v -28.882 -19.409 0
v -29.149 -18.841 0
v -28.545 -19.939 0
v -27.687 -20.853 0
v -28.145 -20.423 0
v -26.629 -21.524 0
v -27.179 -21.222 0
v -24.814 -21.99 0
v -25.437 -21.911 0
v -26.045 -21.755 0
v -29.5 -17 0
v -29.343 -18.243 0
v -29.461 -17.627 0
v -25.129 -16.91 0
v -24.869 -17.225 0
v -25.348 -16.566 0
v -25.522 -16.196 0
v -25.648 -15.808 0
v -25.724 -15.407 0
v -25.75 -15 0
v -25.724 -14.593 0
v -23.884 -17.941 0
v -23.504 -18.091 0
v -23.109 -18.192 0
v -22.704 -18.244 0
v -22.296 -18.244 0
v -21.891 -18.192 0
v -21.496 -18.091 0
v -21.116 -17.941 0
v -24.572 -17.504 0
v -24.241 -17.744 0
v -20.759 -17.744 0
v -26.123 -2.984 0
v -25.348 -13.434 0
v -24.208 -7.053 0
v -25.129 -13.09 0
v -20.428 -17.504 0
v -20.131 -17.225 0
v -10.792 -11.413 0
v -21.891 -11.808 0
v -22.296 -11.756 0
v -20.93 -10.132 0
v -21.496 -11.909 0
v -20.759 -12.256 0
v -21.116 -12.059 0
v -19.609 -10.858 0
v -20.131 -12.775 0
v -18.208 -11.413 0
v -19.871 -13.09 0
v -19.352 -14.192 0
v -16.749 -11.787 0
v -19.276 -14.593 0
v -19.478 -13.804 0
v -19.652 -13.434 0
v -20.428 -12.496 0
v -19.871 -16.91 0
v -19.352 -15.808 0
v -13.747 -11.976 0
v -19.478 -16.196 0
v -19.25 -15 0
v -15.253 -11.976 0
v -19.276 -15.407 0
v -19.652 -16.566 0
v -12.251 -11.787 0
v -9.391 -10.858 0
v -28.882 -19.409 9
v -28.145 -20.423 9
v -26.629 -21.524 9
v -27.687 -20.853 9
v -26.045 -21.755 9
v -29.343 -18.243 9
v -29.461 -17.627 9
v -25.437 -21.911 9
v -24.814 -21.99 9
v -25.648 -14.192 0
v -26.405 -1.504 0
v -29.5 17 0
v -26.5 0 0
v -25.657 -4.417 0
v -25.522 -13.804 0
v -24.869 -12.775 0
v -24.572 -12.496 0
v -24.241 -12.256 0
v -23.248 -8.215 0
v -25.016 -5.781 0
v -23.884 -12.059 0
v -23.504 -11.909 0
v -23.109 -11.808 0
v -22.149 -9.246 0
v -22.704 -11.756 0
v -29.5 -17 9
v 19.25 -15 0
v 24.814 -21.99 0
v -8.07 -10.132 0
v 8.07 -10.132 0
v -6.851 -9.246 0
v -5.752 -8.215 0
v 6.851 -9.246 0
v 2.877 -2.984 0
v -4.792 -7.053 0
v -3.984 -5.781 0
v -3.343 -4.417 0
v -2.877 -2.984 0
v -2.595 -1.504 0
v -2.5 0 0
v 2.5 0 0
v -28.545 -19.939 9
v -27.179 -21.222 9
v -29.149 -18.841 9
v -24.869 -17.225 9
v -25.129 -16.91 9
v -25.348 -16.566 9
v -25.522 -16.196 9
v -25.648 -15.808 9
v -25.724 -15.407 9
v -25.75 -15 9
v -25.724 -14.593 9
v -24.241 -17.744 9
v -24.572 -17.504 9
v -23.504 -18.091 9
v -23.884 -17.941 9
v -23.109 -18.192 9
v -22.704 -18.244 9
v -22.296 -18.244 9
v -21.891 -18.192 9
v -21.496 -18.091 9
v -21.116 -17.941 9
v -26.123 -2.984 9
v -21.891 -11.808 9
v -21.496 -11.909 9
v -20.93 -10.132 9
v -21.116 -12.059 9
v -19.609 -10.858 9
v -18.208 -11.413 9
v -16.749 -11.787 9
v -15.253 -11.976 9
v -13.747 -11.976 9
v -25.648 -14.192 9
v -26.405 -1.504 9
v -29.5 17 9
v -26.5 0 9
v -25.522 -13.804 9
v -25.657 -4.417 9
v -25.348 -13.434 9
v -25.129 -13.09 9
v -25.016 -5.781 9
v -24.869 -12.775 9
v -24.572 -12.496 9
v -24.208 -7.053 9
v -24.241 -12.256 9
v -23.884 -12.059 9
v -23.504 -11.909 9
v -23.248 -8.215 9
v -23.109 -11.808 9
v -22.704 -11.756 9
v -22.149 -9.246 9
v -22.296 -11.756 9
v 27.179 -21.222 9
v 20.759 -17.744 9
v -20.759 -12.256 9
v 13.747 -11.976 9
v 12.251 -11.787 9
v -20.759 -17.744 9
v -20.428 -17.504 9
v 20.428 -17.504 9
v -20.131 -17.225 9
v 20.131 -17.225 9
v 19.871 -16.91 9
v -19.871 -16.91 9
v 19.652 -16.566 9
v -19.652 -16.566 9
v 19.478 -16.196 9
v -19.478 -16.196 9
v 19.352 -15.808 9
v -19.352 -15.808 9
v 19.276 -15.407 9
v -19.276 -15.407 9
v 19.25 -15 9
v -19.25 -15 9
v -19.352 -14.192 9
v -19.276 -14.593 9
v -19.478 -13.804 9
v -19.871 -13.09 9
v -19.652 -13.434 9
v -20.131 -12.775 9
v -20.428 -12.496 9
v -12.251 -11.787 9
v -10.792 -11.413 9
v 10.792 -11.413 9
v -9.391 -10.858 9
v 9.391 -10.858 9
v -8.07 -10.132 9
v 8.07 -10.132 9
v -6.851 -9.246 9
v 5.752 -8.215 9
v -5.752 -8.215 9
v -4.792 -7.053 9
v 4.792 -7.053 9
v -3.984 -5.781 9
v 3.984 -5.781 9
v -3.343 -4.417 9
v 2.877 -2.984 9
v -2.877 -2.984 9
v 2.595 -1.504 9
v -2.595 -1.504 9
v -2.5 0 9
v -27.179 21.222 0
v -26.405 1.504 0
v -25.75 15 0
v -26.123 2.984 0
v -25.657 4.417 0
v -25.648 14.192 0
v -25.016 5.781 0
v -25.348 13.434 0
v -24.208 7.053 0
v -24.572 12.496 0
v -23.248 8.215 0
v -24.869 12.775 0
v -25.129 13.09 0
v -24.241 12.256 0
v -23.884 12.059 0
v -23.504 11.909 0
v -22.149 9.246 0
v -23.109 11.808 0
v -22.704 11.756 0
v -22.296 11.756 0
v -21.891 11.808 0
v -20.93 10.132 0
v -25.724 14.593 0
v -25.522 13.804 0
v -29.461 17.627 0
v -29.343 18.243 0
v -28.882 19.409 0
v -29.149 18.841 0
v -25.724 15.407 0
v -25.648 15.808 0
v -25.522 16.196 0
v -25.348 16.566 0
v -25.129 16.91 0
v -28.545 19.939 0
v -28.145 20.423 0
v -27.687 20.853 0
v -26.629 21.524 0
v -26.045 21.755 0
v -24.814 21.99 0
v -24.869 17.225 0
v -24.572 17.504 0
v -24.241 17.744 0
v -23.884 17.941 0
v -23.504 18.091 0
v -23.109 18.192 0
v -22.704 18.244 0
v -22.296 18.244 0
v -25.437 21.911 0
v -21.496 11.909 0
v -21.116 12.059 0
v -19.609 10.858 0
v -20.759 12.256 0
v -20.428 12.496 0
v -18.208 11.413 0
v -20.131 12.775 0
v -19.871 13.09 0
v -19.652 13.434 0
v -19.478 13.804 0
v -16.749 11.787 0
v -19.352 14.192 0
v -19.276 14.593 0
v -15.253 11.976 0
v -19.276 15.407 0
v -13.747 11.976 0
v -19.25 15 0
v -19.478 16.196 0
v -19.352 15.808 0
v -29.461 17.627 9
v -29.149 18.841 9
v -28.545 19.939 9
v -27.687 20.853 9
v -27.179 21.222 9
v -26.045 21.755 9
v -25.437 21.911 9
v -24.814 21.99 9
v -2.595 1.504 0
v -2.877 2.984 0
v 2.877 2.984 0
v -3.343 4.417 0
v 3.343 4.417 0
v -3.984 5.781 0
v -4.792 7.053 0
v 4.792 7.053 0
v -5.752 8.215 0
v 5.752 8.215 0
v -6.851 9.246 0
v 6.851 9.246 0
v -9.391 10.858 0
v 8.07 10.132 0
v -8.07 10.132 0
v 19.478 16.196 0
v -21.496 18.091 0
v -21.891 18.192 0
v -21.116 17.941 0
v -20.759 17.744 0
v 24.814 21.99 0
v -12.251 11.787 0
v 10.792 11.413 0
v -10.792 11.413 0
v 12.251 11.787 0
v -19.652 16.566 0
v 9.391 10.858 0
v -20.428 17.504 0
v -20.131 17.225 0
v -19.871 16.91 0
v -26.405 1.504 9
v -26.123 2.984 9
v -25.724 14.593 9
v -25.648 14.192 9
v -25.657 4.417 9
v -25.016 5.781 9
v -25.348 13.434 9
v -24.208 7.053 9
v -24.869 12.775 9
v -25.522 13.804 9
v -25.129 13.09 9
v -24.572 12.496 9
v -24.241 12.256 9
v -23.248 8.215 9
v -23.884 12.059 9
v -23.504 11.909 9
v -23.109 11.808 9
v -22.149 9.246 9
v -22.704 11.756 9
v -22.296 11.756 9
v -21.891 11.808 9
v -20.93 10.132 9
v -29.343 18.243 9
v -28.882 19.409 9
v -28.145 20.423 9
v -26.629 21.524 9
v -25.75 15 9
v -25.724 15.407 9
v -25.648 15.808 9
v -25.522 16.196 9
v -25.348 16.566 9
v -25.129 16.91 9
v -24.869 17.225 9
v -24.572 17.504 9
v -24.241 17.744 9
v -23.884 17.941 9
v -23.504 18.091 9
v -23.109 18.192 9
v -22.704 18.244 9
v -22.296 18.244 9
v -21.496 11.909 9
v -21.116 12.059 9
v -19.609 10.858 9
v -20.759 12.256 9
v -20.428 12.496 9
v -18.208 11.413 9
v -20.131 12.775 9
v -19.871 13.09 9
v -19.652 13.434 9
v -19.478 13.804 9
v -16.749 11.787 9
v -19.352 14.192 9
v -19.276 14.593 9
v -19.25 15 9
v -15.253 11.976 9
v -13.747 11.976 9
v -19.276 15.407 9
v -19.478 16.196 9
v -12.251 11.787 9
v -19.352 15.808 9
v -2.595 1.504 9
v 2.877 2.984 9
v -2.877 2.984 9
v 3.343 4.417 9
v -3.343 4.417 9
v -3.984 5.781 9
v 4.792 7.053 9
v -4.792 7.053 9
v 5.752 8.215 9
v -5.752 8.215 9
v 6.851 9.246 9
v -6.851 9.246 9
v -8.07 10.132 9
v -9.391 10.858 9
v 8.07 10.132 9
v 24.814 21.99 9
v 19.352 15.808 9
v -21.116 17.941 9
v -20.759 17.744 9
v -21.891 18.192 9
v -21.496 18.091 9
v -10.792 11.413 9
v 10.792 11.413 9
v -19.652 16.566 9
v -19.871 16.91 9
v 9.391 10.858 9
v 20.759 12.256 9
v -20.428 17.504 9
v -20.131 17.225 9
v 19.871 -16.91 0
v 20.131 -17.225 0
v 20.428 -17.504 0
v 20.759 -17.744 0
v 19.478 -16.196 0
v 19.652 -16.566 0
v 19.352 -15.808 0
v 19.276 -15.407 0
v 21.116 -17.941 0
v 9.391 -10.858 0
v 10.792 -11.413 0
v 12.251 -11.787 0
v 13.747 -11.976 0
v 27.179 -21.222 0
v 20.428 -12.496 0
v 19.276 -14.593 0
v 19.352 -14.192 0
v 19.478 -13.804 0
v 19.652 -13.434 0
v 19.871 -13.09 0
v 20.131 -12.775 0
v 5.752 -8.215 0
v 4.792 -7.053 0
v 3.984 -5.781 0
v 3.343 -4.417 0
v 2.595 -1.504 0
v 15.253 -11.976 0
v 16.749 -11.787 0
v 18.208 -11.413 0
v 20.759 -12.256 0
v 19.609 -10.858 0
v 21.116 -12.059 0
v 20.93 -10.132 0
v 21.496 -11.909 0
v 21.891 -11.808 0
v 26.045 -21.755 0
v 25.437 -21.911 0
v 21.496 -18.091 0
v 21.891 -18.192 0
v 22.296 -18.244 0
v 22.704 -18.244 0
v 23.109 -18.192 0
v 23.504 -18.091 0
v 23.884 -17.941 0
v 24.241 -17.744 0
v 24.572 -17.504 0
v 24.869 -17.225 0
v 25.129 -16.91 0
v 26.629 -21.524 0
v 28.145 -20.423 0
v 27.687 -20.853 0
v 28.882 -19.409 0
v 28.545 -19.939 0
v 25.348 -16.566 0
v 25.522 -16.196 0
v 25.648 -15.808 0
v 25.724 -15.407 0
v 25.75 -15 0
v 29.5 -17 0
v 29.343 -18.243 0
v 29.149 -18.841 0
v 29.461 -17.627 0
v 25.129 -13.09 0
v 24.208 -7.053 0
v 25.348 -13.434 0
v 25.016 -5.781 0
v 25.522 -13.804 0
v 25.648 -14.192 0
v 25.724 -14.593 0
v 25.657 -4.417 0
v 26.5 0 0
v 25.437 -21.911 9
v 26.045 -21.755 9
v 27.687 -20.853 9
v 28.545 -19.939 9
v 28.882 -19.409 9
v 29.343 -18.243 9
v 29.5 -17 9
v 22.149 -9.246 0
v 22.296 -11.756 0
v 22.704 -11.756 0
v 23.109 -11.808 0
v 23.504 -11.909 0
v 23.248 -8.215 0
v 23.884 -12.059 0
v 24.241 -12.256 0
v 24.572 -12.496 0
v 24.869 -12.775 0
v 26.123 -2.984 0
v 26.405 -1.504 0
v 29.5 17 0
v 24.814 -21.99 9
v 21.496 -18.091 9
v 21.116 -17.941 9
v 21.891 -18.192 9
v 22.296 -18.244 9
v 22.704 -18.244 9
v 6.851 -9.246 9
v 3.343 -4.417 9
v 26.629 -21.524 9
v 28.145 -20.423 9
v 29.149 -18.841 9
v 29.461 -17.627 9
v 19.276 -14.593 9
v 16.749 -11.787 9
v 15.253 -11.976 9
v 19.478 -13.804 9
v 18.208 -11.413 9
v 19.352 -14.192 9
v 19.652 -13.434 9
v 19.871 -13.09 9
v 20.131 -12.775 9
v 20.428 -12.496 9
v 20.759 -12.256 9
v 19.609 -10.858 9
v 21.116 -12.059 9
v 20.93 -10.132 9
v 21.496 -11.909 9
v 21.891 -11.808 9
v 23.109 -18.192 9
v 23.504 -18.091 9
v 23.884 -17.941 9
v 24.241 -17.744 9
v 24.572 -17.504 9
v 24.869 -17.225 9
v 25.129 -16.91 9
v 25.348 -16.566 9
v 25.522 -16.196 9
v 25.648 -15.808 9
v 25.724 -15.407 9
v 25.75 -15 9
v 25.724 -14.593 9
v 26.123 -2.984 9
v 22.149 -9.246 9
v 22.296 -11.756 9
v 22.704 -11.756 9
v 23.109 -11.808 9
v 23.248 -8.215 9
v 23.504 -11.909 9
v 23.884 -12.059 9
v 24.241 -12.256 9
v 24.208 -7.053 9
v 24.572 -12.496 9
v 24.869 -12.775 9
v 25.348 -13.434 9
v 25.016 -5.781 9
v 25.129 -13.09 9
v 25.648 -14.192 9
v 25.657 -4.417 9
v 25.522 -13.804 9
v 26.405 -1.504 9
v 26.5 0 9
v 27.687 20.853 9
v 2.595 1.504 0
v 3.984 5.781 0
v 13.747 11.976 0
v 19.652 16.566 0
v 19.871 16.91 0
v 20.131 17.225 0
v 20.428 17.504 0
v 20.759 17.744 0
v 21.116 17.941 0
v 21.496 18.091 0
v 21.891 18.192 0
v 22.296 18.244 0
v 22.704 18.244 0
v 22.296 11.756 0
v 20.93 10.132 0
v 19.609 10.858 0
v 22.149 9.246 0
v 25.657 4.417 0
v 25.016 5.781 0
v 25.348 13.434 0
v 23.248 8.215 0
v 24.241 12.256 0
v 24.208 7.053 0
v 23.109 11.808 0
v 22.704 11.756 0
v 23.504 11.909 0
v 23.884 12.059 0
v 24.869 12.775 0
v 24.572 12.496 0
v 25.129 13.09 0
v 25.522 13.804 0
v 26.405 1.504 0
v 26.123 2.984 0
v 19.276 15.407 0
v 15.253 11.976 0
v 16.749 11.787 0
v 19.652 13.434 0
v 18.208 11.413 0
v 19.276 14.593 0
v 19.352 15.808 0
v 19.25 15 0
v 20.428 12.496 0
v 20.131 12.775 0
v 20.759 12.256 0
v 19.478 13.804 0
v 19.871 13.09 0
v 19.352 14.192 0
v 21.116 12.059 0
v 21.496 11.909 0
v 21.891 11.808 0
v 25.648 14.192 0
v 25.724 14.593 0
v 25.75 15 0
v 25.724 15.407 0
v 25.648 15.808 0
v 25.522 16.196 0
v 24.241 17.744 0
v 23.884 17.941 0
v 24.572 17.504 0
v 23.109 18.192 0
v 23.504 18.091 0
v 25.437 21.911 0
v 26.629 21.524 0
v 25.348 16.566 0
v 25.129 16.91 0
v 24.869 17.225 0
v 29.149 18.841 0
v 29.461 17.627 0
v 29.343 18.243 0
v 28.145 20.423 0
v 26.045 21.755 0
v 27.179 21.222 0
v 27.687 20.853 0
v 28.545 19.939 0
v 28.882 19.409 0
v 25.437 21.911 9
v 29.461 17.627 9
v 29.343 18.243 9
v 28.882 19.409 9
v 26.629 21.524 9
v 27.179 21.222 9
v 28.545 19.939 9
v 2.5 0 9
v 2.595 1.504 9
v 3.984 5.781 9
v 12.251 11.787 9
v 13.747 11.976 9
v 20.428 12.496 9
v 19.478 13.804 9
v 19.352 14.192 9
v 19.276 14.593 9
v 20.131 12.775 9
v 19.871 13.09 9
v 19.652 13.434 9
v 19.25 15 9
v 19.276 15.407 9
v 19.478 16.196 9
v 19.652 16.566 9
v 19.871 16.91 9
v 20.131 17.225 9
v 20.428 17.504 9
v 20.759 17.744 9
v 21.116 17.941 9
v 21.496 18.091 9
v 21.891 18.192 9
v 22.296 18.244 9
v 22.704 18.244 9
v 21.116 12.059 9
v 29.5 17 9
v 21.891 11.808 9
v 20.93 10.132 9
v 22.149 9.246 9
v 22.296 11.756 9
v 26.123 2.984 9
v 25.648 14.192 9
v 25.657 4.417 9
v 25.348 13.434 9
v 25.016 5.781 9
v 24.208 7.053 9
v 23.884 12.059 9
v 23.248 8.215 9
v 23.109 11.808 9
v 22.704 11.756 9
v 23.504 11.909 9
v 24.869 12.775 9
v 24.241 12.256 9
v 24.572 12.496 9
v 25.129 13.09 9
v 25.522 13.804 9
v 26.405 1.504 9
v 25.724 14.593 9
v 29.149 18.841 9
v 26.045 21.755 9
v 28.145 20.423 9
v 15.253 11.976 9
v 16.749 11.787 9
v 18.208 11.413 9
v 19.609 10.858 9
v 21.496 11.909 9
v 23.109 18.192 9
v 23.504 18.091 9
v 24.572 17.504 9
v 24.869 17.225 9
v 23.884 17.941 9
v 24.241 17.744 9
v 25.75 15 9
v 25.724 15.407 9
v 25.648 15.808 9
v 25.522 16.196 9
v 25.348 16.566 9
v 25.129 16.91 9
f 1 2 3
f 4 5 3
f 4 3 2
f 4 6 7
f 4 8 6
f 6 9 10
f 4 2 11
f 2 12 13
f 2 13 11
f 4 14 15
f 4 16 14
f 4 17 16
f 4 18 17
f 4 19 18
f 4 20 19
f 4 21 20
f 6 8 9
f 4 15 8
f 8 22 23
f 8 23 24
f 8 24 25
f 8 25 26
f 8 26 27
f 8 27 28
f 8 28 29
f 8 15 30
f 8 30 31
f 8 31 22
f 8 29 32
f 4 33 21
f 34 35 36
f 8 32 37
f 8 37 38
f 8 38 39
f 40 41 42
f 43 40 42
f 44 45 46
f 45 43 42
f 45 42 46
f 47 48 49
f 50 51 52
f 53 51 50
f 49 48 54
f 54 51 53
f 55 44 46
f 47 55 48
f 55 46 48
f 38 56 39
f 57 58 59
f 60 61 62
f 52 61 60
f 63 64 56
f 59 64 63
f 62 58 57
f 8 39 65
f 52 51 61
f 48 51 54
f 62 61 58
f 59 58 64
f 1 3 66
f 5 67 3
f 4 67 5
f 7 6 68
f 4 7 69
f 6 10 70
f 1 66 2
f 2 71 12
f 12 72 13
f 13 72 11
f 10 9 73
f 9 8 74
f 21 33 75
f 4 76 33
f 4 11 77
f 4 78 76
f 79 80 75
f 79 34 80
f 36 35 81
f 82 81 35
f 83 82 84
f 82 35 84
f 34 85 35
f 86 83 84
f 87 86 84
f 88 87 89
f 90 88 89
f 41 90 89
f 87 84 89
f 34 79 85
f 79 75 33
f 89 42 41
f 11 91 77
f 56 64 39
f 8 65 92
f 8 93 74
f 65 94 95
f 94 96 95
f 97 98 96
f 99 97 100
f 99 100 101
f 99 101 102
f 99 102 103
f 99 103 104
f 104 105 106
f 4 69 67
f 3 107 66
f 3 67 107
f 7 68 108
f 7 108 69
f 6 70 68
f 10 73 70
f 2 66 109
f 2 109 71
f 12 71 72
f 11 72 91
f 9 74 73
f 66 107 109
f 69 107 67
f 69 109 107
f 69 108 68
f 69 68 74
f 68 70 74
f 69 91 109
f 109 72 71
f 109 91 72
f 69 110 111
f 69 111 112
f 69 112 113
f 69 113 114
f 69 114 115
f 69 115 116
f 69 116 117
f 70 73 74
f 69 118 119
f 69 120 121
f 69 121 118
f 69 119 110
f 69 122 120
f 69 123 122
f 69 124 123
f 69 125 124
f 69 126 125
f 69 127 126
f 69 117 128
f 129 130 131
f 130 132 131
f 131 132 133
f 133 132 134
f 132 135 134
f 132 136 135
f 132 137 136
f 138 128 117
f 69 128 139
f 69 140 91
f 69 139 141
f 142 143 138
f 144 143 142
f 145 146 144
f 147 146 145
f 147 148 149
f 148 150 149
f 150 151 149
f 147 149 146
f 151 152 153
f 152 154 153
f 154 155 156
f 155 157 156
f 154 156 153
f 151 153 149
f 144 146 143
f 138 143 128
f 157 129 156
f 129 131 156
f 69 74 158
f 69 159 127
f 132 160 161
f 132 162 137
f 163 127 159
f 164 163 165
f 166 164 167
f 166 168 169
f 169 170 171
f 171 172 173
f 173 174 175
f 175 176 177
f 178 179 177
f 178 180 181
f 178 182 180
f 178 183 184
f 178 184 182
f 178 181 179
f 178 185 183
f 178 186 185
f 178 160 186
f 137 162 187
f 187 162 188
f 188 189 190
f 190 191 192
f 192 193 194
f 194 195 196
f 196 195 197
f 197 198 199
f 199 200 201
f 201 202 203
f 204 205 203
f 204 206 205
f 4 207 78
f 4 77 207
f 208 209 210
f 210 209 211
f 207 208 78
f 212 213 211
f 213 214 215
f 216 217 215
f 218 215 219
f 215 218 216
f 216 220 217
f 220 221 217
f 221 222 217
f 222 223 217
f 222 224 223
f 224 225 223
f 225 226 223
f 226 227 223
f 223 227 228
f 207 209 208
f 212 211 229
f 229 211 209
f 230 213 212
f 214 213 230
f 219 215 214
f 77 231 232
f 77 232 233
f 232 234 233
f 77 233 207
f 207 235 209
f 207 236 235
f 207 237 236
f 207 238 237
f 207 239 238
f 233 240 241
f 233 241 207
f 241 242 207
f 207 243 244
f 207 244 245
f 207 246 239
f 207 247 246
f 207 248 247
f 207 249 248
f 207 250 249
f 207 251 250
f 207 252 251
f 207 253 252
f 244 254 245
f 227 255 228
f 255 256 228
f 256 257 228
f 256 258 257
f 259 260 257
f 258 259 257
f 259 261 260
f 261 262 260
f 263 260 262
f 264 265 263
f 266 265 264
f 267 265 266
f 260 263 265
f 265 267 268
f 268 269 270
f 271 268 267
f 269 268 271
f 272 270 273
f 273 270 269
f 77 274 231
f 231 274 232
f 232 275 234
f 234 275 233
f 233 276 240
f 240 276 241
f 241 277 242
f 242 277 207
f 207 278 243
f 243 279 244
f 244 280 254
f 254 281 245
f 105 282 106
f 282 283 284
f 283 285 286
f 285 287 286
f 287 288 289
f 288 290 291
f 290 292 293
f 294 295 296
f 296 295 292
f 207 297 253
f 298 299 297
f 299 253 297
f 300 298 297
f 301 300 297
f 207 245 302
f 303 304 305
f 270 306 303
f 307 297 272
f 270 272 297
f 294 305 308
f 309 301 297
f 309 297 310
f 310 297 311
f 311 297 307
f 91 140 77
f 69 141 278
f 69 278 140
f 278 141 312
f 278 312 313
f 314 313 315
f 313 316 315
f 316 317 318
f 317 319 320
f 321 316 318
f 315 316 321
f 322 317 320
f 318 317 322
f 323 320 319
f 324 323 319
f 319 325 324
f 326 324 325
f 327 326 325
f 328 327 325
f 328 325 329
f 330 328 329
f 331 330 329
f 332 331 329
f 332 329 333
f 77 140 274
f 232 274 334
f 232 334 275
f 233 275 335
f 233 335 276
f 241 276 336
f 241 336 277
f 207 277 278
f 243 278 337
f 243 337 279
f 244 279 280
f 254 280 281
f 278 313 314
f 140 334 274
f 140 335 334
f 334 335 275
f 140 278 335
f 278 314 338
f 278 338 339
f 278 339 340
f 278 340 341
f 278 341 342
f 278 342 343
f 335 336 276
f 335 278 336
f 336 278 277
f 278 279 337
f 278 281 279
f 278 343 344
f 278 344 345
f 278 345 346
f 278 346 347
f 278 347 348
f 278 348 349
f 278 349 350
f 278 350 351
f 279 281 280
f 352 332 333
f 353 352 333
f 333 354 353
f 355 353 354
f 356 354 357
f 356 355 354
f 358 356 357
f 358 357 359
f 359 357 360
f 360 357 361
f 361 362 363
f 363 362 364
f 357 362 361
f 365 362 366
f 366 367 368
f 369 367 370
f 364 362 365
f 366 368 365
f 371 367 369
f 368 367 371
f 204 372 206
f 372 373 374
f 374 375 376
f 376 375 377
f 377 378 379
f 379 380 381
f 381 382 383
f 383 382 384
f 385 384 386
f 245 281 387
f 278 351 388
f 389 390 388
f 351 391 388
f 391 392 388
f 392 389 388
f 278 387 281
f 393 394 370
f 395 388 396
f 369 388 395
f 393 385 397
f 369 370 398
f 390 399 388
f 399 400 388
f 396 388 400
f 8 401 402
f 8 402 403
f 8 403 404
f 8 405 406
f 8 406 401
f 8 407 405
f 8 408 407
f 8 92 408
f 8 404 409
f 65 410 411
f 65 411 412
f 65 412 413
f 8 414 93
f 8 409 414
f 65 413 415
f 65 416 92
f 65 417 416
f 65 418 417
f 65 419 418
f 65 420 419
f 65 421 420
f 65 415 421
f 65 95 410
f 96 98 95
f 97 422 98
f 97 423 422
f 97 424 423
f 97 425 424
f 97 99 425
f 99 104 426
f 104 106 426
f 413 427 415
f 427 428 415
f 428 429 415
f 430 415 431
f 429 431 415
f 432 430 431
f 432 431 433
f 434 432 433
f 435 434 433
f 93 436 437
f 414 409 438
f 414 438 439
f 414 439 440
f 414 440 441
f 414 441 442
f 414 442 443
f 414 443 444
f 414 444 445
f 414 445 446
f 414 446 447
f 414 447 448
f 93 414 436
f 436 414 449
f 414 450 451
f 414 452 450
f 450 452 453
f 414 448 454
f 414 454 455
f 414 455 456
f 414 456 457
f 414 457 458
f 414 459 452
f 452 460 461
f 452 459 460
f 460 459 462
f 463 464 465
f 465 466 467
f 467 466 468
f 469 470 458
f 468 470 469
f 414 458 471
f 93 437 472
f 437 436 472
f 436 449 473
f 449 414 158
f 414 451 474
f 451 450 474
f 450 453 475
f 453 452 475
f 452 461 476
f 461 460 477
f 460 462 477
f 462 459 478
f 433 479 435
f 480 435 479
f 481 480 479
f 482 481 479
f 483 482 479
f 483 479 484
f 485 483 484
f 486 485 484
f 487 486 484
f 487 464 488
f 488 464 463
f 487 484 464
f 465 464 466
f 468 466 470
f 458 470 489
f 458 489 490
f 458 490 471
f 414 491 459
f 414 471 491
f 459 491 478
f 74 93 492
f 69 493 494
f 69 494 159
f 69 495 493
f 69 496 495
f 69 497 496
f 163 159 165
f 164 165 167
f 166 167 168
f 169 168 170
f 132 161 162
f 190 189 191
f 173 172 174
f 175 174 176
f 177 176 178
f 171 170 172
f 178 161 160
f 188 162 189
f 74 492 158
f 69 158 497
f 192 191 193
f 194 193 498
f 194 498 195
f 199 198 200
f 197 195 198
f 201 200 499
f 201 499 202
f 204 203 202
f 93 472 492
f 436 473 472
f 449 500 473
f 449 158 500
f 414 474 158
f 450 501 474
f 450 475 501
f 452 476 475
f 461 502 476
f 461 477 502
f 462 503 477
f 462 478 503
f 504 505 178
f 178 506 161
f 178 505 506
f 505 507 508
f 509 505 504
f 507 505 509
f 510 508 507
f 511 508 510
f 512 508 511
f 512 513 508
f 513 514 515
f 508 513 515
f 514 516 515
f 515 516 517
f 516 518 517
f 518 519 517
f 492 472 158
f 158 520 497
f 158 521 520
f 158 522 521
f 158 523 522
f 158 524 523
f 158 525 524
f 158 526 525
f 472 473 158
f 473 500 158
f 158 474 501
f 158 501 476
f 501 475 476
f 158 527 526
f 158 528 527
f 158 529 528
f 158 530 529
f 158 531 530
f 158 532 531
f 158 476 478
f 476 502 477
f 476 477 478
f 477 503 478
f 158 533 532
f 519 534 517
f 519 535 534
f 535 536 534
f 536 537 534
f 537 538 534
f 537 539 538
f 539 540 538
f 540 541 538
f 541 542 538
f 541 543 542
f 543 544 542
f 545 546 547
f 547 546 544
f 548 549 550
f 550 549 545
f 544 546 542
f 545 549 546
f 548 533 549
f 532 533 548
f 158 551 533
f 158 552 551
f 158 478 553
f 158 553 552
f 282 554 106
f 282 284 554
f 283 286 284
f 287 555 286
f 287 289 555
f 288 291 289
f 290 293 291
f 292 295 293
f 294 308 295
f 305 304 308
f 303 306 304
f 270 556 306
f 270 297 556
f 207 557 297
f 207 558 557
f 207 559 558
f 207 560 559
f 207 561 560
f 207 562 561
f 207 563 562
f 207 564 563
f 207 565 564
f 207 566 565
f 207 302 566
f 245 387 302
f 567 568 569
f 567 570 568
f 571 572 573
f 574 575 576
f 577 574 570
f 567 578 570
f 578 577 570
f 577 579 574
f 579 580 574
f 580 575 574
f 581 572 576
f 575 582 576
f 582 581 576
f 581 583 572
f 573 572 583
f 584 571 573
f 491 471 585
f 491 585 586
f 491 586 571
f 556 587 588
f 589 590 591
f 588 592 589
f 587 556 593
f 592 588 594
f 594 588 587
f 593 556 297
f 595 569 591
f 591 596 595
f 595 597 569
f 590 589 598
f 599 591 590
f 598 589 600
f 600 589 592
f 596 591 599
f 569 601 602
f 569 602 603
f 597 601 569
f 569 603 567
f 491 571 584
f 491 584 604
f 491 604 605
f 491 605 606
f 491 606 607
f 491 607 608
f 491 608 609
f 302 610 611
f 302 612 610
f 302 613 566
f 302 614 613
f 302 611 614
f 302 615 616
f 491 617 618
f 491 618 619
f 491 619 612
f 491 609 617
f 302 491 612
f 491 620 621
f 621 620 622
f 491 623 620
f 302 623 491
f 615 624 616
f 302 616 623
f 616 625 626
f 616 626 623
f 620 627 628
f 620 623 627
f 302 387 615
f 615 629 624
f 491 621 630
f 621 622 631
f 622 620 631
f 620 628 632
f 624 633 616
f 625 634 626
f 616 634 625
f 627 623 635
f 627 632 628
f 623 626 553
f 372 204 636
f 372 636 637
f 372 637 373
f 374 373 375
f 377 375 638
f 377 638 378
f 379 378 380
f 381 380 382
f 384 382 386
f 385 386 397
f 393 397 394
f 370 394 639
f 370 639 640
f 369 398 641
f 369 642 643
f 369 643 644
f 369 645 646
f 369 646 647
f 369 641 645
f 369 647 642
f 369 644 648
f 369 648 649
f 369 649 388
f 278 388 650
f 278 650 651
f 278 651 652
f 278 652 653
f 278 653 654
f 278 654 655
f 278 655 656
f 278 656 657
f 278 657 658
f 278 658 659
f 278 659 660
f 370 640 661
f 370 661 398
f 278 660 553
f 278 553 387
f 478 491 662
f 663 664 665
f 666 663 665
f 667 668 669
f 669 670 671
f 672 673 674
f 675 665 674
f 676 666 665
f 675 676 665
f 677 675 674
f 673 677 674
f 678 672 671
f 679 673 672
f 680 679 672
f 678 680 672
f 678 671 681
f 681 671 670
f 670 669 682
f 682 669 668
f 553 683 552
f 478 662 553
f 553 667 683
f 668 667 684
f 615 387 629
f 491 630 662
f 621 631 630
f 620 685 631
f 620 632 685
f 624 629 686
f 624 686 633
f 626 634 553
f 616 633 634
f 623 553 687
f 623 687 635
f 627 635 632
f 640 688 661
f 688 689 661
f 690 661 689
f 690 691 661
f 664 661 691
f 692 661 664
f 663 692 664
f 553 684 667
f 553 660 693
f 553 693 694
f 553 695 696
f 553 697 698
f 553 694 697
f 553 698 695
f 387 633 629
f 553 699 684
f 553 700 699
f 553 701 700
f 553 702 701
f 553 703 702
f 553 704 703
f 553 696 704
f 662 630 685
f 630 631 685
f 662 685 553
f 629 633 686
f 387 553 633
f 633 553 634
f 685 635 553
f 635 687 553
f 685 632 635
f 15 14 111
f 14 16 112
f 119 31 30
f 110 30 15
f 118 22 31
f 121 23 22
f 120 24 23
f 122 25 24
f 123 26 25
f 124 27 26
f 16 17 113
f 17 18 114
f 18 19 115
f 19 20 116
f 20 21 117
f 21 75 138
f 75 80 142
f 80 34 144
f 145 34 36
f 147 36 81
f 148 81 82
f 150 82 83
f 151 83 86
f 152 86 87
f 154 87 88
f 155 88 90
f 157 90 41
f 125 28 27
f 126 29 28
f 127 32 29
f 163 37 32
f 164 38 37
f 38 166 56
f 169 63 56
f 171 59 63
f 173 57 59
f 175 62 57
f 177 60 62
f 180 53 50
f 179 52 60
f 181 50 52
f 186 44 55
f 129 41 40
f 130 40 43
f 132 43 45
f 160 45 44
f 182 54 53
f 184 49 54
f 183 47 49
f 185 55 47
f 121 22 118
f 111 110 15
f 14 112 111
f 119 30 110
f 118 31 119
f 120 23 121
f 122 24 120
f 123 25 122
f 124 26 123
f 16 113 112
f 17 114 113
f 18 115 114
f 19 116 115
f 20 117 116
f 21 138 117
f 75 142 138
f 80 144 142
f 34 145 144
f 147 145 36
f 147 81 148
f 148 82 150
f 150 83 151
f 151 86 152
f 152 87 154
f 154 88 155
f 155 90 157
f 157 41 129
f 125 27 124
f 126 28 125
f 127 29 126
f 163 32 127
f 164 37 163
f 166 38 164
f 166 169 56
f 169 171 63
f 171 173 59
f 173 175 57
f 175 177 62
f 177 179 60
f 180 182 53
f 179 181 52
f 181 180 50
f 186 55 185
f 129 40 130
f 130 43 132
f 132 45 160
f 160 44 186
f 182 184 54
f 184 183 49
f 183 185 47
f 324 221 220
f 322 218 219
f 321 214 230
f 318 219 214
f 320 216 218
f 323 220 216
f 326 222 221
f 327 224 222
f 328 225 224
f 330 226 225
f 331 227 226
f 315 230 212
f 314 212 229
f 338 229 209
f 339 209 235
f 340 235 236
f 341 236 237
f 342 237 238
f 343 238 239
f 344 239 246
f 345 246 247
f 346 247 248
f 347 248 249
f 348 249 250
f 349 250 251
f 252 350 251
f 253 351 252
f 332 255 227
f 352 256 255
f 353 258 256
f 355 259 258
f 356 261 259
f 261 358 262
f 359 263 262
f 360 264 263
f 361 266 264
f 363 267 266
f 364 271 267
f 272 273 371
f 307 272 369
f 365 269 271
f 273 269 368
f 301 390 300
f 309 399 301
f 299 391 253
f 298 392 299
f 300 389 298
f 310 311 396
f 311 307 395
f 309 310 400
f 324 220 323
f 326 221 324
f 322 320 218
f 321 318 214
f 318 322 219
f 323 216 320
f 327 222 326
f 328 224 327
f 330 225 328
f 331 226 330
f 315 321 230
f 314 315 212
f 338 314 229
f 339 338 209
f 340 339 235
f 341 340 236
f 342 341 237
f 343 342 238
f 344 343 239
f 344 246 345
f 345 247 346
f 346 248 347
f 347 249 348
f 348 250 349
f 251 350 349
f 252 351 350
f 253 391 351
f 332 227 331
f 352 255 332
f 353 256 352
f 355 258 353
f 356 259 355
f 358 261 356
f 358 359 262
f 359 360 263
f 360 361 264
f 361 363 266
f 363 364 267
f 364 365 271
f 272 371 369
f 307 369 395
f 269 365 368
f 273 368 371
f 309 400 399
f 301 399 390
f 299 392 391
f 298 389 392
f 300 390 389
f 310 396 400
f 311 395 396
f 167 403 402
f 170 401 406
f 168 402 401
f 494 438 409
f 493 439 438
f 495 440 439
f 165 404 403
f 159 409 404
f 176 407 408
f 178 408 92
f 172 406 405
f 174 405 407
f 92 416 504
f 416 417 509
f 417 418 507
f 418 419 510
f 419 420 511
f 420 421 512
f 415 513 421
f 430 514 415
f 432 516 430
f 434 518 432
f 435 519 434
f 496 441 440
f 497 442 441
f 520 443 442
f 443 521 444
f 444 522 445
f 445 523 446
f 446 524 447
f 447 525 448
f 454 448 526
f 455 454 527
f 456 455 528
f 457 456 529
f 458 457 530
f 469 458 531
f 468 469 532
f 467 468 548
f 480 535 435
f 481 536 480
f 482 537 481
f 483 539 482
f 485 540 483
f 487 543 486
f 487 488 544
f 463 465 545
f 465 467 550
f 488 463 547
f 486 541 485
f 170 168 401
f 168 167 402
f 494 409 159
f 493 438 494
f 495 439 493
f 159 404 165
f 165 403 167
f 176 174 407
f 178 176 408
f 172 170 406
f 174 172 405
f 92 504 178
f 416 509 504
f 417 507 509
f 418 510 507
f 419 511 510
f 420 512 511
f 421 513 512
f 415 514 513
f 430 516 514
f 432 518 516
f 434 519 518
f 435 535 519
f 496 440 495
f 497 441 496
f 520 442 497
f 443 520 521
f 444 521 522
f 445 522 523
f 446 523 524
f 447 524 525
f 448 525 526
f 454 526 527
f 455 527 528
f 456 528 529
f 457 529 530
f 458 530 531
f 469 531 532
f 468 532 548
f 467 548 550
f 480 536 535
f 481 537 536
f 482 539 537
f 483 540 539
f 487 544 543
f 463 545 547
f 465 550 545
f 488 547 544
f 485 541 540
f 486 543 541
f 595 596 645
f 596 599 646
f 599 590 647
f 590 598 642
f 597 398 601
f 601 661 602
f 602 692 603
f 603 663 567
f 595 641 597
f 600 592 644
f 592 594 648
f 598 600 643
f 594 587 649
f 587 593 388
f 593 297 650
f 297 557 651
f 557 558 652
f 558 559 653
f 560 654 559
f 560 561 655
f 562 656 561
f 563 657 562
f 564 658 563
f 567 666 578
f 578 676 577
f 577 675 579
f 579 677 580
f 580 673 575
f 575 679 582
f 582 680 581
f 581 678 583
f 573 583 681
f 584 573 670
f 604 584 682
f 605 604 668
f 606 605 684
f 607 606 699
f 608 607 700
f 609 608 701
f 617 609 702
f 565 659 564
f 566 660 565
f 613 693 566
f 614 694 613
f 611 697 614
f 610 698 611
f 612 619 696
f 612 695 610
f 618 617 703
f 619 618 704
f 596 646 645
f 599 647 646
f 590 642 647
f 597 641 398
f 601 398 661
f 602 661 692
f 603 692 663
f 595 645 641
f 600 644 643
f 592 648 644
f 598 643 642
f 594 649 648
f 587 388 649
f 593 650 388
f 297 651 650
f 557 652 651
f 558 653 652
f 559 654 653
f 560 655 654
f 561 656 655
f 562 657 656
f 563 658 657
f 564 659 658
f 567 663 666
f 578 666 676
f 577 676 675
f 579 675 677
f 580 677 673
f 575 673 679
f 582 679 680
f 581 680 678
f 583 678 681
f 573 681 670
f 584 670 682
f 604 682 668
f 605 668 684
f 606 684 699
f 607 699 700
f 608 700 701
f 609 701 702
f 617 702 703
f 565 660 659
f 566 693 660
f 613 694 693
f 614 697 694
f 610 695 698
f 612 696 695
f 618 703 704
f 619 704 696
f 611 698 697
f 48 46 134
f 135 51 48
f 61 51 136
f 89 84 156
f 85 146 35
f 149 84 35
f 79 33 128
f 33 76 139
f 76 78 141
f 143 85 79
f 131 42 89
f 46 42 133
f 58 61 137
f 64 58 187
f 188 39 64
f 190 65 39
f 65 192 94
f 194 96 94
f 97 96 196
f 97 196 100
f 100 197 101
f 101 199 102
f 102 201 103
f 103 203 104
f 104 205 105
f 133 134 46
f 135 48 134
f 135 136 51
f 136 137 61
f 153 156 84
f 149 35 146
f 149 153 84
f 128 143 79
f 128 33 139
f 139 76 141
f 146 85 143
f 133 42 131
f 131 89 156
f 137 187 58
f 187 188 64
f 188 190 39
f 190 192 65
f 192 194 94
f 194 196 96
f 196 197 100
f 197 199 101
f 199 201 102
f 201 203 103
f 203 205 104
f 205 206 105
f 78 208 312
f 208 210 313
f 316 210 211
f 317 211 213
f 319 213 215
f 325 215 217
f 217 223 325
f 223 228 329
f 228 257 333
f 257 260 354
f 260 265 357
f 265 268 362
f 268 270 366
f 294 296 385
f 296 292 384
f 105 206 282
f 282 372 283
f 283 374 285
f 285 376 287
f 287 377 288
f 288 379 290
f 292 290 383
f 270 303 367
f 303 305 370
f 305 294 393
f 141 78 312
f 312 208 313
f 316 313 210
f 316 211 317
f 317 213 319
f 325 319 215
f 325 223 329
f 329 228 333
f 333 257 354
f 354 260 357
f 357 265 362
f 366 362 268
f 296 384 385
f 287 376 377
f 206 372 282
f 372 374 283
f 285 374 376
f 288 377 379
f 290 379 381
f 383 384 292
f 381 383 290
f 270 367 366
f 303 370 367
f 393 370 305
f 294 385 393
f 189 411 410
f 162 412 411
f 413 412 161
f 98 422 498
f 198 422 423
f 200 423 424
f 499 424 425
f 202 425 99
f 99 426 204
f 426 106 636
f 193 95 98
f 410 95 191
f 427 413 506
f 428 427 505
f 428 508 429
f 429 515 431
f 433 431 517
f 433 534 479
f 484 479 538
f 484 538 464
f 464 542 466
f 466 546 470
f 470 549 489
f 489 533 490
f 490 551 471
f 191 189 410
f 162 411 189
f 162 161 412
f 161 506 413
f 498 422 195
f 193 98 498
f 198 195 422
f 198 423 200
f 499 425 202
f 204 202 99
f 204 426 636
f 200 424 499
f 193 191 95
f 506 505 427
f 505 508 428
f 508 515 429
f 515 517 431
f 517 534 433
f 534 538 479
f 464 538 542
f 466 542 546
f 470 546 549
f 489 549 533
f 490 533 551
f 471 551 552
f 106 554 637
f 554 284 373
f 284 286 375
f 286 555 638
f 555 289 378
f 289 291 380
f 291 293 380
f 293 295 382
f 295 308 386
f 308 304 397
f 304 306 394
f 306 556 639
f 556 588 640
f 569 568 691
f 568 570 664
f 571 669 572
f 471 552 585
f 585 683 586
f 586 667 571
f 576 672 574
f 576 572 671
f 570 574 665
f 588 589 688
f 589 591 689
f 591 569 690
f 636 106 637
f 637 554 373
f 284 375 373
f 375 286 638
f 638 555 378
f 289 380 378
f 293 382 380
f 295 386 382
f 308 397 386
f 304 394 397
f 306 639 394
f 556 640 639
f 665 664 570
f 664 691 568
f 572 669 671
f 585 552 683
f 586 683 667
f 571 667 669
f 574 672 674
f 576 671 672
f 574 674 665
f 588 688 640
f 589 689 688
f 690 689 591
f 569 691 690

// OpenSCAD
$fn = 50;

difference() {
	union() {
		hull() {
			translate(v = [-24.5, 17.0, 0]) {
				cylinder(h = 9, r = 5);
			}
			translate(v = [24.5, 17.0, 0]) {
				cylinder(h = 9, r = 5);
			}
			translate(v = [-24.5, -17.0, 0]) {
				cylinder(h = 9, r = 5);
			}
			translate(v = [24.5, -17.0, 0]) {
				cylinder(h = 9, r = 5);
			}
		}
	}
	union() {
		translate(v = [-22.5, -15.0, -100.0]) {
			cylinder(h = 200, r = 3.25);
		}
		translate(v = [-22.5, 15.0, -100.0]) {
			cylinder(h = 200, r = 3.25);
		}
		translate(v = [22.5, -15.0, -100.0]) {
			cylinder(h = 200, r = 3.25);
		}
		translate(v = [22.5, 15.0, -100.0]) {
			cylinder(h = 200, r = 3.25);
		}
		translate(v = [-22.5, -15.0, -100.0]) {
			cylinder(h = 200, r = 1.8);
		}
		translate(v = [-22.5, 15.0, -100.0]) {
			cylinder(h = 200, r = 1.8);
		}
		translate(v = [22.5, -15.0, -100.0]) {
			cylinder(h = 200, r = 1.8);
		}
		translate(v = [22.5, 15.0, -100.0]) {
			cylinder(h = 200, r = 1.8);
		}
		translate(v = [-14.5, 0, 0.0]) {
			cylinder(h = 9, r = 12.0);
		}
		translate(v = [14.5, 0, 0.0]) {
			cylinder(h = 9, r = 12.0);
		}
	}
}
